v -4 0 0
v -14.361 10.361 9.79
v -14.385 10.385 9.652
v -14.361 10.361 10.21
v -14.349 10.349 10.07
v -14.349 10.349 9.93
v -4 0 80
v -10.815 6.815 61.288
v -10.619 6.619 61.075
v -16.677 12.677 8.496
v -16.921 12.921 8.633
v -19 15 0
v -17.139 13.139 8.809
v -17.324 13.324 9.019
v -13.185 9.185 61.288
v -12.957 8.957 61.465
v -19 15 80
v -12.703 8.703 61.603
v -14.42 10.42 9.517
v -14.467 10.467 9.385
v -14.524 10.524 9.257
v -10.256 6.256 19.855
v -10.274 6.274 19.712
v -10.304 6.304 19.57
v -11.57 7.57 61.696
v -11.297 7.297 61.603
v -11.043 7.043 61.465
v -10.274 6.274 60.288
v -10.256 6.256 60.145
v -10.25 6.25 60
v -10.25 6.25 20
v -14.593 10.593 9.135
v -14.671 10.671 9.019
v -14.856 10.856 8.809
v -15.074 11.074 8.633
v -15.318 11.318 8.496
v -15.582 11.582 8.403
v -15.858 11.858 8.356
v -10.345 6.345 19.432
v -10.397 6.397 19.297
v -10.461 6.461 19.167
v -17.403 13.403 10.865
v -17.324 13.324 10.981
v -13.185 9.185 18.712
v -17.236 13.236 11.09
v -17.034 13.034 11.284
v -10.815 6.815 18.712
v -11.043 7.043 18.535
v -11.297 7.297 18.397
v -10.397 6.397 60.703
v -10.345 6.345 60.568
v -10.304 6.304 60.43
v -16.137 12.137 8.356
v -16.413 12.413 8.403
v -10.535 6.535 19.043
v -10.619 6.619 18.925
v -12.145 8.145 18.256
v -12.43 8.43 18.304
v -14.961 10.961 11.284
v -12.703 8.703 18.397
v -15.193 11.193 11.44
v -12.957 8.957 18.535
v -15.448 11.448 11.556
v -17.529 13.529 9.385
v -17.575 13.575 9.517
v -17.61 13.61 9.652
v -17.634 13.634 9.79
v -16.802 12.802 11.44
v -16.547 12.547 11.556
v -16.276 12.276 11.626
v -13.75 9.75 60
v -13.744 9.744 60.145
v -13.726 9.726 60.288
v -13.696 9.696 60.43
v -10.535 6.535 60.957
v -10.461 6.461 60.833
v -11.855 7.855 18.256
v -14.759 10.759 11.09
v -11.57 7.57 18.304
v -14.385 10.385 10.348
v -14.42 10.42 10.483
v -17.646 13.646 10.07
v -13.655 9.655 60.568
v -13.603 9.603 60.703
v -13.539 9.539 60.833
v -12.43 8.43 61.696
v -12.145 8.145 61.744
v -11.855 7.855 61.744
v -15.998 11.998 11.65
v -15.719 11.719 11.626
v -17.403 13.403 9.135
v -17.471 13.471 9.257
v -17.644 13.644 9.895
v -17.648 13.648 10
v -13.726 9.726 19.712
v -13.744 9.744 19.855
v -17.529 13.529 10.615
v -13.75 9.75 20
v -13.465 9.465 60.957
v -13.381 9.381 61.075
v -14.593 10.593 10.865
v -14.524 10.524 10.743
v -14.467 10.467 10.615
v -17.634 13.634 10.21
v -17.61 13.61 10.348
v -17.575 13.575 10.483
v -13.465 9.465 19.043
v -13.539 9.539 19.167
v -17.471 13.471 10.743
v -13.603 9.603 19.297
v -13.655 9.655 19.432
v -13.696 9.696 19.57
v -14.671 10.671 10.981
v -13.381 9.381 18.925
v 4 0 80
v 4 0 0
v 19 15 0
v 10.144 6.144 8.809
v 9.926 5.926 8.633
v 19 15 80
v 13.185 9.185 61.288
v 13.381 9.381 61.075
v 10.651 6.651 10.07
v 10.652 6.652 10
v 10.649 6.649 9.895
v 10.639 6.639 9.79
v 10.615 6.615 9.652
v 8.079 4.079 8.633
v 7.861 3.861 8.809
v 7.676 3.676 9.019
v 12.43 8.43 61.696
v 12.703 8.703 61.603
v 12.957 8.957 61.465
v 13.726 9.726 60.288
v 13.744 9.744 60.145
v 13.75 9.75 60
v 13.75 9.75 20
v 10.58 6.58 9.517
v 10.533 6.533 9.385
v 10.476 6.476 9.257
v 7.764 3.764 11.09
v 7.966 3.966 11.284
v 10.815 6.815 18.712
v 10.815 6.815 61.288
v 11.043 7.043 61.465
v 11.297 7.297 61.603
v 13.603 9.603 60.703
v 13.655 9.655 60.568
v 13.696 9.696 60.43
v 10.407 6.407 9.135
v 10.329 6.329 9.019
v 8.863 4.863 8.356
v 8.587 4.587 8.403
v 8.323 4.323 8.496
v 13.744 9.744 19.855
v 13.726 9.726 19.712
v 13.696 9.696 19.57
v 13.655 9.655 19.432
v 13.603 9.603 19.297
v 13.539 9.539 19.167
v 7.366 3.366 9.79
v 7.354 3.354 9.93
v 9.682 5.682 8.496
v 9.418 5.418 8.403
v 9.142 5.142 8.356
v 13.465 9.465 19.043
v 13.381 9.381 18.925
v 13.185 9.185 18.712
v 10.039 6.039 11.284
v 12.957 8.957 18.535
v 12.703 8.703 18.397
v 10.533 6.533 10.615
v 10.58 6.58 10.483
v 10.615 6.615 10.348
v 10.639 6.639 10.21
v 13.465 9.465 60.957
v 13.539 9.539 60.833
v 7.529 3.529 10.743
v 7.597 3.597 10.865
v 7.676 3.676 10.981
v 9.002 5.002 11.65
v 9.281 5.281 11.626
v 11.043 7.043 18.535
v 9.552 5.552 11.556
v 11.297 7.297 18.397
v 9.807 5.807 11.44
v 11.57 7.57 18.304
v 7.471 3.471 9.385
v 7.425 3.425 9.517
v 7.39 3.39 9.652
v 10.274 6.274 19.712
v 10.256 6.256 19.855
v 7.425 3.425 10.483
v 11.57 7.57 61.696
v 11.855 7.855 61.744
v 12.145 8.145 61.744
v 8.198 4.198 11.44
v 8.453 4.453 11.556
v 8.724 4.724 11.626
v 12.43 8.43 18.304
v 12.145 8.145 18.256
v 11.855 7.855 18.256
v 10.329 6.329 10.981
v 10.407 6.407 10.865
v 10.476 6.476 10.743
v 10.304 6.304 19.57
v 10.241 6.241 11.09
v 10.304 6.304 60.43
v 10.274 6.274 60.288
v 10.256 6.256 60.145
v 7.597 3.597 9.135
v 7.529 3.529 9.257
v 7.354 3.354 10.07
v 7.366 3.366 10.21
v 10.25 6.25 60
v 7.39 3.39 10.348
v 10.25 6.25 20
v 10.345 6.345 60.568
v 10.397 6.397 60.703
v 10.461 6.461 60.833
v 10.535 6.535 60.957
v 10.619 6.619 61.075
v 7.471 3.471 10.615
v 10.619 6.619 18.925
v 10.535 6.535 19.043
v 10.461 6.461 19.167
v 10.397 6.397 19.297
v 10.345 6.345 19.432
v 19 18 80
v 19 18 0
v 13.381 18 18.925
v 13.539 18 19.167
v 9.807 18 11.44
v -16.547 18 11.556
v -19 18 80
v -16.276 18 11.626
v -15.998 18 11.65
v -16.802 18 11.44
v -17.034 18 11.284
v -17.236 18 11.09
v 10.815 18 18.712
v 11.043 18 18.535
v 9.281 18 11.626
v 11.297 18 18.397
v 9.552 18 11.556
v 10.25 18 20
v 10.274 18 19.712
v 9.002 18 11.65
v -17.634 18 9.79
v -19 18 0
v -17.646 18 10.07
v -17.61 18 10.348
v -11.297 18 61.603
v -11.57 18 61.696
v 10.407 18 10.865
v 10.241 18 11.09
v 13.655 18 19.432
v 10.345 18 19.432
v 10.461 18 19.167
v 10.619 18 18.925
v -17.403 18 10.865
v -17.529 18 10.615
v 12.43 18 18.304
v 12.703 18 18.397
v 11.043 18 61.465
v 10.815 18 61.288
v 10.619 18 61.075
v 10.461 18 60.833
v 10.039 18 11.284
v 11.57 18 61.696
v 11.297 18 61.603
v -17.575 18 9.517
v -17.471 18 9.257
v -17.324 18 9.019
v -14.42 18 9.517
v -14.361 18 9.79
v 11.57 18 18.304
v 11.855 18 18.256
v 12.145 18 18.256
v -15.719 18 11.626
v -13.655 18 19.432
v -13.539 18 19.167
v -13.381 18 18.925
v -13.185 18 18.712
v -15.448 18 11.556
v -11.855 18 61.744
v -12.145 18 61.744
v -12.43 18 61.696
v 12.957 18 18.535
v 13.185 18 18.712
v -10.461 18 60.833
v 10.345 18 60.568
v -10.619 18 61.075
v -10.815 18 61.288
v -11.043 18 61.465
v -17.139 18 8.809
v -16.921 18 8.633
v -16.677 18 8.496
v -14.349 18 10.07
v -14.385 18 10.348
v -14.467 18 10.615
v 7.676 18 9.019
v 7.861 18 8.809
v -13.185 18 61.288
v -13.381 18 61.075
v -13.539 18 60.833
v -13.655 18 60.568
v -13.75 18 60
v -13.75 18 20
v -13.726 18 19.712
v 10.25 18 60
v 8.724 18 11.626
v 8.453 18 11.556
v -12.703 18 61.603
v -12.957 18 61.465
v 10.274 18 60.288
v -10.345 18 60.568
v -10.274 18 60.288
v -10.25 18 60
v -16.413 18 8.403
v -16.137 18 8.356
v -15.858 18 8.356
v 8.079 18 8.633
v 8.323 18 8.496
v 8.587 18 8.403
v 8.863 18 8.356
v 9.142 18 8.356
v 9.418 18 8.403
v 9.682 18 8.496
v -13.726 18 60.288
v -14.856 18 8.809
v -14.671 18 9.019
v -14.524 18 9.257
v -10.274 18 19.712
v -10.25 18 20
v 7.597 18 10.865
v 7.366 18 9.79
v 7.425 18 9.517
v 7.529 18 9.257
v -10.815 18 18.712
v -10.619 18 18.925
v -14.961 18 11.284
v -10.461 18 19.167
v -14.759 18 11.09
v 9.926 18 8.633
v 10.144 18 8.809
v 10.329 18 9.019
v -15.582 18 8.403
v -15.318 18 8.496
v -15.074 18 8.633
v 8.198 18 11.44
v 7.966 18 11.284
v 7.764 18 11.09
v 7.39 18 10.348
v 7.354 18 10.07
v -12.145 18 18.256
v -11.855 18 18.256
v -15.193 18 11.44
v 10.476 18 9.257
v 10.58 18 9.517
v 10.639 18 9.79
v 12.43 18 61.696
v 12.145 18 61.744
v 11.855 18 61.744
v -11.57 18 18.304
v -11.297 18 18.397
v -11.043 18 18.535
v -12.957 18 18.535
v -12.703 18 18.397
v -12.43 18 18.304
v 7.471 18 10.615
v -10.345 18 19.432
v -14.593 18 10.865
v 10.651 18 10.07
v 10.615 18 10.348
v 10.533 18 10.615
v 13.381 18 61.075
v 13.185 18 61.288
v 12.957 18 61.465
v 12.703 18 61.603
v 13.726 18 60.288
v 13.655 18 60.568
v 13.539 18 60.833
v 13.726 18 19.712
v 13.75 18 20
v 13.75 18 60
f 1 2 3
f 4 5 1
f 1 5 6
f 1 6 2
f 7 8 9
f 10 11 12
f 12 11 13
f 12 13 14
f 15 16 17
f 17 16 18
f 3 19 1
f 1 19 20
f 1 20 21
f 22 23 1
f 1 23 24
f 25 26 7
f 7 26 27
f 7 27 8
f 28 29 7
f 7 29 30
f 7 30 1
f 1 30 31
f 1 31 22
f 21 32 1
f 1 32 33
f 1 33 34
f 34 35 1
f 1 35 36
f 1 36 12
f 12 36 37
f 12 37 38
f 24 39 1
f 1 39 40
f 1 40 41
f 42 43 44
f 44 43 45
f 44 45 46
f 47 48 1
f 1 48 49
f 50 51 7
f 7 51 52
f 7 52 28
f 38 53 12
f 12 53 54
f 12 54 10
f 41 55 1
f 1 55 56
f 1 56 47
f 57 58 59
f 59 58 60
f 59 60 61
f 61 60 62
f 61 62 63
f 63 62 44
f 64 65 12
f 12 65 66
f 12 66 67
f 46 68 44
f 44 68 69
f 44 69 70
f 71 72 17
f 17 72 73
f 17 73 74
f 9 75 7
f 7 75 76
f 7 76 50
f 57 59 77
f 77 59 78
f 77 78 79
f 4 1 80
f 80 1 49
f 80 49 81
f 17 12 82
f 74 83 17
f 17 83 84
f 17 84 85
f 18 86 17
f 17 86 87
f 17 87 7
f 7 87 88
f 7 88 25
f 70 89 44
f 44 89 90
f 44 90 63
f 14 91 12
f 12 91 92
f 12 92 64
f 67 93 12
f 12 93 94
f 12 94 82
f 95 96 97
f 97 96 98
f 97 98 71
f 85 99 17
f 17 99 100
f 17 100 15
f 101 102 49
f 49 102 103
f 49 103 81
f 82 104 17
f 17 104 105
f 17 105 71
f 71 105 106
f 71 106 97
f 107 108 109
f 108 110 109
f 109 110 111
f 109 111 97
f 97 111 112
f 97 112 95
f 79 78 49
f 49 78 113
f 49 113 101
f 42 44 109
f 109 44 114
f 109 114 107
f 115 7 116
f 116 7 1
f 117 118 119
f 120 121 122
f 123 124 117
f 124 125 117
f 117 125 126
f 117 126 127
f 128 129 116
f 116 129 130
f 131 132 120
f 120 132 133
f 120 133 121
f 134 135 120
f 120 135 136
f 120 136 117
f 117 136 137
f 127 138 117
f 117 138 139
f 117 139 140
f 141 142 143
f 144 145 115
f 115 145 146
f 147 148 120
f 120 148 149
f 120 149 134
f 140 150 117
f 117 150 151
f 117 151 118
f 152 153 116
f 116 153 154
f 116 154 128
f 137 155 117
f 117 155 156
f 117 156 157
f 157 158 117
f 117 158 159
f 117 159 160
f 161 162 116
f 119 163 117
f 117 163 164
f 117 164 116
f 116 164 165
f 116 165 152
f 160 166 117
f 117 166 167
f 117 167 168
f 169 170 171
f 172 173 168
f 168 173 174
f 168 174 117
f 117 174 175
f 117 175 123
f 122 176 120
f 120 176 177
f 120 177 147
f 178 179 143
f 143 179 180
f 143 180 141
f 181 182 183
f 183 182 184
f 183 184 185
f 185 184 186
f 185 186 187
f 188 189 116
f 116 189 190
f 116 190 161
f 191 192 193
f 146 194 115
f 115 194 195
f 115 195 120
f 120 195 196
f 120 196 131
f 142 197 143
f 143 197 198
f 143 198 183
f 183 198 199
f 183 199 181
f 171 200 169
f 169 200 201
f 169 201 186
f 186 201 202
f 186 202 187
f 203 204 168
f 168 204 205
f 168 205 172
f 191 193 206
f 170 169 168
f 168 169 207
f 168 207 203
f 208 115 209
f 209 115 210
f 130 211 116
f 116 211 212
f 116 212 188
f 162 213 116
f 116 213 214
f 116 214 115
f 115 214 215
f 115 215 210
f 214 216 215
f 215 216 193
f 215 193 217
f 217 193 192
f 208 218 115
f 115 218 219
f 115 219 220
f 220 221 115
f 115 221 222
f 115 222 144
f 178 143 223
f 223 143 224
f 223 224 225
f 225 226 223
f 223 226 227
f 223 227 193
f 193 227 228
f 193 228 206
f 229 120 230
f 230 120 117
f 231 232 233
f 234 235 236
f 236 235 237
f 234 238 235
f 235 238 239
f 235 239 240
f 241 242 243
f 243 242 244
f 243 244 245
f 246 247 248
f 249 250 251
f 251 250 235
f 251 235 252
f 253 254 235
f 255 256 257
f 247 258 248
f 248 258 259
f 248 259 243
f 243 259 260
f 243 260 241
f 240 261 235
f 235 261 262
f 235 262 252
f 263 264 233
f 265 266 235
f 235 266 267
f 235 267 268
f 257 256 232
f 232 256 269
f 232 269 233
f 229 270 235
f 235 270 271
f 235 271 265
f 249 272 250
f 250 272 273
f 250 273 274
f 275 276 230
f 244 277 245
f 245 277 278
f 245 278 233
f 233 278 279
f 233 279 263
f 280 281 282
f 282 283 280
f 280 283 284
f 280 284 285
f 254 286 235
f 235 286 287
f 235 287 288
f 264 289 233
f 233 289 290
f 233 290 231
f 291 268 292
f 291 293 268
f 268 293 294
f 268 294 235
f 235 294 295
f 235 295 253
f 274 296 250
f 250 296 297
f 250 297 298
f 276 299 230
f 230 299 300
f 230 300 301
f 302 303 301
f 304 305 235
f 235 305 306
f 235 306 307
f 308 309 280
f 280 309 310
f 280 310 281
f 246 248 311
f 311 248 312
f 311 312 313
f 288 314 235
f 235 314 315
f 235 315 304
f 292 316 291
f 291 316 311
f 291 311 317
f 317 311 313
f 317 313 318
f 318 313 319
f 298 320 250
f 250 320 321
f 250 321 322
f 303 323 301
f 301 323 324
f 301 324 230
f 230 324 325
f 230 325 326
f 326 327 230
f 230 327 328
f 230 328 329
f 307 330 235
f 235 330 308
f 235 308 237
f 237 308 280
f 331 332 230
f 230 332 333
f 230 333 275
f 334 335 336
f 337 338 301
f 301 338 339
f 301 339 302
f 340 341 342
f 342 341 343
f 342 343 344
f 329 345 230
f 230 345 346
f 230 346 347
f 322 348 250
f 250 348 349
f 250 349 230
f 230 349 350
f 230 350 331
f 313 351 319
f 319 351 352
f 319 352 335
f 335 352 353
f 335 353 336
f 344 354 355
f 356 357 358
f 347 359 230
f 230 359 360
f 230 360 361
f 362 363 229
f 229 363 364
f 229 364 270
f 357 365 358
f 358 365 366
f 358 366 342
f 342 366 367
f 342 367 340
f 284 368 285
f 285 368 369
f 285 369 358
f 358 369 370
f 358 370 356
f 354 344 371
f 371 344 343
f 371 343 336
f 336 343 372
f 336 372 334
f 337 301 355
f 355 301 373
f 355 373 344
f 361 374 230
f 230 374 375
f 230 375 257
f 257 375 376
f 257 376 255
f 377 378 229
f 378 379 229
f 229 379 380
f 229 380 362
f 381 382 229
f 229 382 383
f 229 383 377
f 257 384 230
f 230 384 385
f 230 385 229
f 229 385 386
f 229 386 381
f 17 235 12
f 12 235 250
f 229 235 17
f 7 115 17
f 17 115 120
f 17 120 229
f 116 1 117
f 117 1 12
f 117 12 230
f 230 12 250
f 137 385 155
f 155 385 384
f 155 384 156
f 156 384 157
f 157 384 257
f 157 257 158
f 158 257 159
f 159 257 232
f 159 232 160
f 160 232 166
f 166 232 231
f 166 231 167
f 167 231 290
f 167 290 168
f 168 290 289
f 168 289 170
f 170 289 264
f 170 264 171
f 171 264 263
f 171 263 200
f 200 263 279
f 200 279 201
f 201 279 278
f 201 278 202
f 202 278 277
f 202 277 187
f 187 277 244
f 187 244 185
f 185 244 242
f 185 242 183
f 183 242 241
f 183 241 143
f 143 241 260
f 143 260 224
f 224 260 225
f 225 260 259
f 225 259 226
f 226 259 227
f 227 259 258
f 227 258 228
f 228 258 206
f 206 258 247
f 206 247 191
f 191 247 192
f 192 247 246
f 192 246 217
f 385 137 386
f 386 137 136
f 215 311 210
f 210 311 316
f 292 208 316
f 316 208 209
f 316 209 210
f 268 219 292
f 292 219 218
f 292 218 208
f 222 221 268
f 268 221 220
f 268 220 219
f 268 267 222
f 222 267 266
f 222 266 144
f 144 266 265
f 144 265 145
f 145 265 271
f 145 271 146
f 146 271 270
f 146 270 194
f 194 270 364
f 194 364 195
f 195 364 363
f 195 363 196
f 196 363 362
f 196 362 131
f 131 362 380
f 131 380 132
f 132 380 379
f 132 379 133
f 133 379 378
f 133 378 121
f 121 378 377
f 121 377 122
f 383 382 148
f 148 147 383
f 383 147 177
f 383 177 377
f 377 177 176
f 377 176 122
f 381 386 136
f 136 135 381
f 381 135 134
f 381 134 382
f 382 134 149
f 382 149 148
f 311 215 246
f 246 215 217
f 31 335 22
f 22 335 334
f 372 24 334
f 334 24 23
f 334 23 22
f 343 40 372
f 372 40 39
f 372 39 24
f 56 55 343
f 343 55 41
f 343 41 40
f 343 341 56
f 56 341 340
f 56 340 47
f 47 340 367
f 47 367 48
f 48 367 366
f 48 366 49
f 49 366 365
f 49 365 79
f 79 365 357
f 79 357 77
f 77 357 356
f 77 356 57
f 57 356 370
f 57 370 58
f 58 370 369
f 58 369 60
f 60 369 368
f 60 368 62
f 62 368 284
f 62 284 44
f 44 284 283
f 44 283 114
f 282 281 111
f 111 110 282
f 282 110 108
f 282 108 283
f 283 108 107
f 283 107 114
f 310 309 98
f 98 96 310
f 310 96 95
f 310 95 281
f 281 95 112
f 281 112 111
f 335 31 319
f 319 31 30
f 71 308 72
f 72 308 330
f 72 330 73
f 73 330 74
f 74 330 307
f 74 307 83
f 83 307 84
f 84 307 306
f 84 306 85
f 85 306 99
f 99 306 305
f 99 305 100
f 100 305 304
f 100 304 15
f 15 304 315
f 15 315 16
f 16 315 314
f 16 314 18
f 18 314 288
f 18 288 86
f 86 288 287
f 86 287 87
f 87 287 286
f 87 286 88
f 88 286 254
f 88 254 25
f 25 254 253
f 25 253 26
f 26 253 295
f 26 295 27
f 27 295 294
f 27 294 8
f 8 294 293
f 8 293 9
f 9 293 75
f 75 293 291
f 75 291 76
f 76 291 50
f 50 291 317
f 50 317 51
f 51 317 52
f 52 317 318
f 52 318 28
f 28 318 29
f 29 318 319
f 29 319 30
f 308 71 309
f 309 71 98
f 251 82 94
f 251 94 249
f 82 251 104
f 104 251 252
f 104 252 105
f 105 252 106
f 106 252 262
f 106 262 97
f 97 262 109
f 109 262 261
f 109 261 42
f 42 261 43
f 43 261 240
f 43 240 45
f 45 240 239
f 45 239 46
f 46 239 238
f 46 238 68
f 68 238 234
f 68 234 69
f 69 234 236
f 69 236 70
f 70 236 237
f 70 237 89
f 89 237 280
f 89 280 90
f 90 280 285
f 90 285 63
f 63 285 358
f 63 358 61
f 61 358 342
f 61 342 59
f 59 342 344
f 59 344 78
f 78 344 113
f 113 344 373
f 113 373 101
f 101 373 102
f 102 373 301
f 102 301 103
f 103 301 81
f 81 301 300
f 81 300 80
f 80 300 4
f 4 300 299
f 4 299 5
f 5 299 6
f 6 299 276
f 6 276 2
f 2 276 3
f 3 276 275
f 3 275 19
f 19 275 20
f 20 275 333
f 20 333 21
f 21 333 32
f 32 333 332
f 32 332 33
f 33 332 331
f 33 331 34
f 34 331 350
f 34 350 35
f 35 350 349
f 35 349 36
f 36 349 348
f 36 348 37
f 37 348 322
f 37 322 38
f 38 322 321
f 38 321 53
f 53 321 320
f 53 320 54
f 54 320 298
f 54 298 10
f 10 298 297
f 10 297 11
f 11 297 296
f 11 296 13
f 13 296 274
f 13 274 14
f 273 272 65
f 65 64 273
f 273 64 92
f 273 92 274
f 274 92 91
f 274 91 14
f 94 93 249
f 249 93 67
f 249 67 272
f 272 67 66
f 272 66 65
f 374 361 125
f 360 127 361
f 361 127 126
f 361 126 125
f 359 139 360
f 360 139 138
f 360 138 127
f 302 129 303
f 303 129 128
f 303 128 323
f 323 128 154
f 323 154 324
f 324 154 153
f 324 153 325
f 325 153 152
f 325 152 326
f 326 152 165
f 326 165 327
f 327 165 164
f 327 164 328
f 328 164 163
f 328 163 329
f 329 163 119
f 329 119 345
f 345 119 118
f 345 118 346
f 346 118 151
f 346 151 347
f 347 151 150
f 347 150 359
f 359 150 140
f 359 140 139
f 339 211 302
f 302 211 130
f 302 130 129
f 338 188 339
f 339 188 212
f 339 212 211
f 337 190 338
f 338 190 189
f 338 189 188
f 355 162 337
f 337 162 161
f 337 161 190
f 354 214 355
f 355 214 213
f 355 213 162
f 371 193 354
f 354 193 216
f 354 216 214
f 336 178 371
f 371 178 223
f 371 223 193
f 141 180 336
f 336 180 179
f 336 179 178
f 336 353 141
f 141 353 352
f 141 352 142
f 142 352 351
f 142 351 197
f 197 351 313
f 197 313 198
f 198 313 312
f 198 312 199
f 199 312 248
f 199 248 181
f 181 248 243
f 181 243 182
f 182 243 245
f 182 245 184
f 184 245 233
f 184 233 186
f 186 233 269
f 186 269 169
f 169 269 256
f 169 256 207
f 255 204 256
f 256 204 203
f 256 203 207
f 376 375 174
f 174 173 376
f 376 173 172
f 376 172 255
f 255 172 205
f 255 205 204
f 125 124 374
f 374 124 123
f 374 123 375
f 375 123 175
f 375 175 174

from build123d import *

# Parameters (mm, degrees)
BOSS_EXTRUDE1_DEPTH   = 80
CUT_EXTRUDE1_DEPTH    = 40
M4X0_7_TAPPED_HOLE1_D = 3.3


with BuildPart() as part:
    # Sketch1 → Boss-Extrude1 (new body)
    with BuildSketch(Plane.XY):
        Polygon((-4, 0), (4, 0), (19, 15), (19, 18), (-19, 18), (-19, 15), align=None)
    extrude(amount=BOSS_EXTRUDE1_DEPTH)

    # Sketch2 → Cut-Extrude1 (cut)
    with BuildSketch(Plane(origin=(0, 18, 0), x_dir=(1, 0, 0), z_dir=(0, 1, 0))):
        with BuildLine():
            Line((-10.25, -20), (-10.25, -60))
            ThreePointArc((-10.25, -60), (-12, -61.75), (-13.75, -60))
            Line((-13.75, -60), (-13.75, -20))
            ThreePointArc((-13.75, -20), (-12, -18.25), (-10.25, -20))
        make_face()
        with BuildLine():
            Line((13.75, -20), (13.75, -60))
            ThreePointArc((13.75, -60), (12, -61.75), (10.25, -60))
            Line((10.25, -60), (10.25, -20))
            ThreePointArc((10.25, -20), (12, -18.25), (13.75, -20))
        make_face()
    extrude(amount=-CUT_EXTRUDE1_DEPTH, mode=Mode.SUBTRACT)

    # M4x0.7 Tapped Hole1 (through all)
    with Locations(Plane(origin=(0, 18, 0), x_dir=(1, 0, 0), z_dir=(0, 1, 0))):
        with Locations((9.00246861, -10), (-15.99753139, -10)):
            Hole(M4X0_7_TAPPED_HOLE1_D / 2)


solid = part.part
